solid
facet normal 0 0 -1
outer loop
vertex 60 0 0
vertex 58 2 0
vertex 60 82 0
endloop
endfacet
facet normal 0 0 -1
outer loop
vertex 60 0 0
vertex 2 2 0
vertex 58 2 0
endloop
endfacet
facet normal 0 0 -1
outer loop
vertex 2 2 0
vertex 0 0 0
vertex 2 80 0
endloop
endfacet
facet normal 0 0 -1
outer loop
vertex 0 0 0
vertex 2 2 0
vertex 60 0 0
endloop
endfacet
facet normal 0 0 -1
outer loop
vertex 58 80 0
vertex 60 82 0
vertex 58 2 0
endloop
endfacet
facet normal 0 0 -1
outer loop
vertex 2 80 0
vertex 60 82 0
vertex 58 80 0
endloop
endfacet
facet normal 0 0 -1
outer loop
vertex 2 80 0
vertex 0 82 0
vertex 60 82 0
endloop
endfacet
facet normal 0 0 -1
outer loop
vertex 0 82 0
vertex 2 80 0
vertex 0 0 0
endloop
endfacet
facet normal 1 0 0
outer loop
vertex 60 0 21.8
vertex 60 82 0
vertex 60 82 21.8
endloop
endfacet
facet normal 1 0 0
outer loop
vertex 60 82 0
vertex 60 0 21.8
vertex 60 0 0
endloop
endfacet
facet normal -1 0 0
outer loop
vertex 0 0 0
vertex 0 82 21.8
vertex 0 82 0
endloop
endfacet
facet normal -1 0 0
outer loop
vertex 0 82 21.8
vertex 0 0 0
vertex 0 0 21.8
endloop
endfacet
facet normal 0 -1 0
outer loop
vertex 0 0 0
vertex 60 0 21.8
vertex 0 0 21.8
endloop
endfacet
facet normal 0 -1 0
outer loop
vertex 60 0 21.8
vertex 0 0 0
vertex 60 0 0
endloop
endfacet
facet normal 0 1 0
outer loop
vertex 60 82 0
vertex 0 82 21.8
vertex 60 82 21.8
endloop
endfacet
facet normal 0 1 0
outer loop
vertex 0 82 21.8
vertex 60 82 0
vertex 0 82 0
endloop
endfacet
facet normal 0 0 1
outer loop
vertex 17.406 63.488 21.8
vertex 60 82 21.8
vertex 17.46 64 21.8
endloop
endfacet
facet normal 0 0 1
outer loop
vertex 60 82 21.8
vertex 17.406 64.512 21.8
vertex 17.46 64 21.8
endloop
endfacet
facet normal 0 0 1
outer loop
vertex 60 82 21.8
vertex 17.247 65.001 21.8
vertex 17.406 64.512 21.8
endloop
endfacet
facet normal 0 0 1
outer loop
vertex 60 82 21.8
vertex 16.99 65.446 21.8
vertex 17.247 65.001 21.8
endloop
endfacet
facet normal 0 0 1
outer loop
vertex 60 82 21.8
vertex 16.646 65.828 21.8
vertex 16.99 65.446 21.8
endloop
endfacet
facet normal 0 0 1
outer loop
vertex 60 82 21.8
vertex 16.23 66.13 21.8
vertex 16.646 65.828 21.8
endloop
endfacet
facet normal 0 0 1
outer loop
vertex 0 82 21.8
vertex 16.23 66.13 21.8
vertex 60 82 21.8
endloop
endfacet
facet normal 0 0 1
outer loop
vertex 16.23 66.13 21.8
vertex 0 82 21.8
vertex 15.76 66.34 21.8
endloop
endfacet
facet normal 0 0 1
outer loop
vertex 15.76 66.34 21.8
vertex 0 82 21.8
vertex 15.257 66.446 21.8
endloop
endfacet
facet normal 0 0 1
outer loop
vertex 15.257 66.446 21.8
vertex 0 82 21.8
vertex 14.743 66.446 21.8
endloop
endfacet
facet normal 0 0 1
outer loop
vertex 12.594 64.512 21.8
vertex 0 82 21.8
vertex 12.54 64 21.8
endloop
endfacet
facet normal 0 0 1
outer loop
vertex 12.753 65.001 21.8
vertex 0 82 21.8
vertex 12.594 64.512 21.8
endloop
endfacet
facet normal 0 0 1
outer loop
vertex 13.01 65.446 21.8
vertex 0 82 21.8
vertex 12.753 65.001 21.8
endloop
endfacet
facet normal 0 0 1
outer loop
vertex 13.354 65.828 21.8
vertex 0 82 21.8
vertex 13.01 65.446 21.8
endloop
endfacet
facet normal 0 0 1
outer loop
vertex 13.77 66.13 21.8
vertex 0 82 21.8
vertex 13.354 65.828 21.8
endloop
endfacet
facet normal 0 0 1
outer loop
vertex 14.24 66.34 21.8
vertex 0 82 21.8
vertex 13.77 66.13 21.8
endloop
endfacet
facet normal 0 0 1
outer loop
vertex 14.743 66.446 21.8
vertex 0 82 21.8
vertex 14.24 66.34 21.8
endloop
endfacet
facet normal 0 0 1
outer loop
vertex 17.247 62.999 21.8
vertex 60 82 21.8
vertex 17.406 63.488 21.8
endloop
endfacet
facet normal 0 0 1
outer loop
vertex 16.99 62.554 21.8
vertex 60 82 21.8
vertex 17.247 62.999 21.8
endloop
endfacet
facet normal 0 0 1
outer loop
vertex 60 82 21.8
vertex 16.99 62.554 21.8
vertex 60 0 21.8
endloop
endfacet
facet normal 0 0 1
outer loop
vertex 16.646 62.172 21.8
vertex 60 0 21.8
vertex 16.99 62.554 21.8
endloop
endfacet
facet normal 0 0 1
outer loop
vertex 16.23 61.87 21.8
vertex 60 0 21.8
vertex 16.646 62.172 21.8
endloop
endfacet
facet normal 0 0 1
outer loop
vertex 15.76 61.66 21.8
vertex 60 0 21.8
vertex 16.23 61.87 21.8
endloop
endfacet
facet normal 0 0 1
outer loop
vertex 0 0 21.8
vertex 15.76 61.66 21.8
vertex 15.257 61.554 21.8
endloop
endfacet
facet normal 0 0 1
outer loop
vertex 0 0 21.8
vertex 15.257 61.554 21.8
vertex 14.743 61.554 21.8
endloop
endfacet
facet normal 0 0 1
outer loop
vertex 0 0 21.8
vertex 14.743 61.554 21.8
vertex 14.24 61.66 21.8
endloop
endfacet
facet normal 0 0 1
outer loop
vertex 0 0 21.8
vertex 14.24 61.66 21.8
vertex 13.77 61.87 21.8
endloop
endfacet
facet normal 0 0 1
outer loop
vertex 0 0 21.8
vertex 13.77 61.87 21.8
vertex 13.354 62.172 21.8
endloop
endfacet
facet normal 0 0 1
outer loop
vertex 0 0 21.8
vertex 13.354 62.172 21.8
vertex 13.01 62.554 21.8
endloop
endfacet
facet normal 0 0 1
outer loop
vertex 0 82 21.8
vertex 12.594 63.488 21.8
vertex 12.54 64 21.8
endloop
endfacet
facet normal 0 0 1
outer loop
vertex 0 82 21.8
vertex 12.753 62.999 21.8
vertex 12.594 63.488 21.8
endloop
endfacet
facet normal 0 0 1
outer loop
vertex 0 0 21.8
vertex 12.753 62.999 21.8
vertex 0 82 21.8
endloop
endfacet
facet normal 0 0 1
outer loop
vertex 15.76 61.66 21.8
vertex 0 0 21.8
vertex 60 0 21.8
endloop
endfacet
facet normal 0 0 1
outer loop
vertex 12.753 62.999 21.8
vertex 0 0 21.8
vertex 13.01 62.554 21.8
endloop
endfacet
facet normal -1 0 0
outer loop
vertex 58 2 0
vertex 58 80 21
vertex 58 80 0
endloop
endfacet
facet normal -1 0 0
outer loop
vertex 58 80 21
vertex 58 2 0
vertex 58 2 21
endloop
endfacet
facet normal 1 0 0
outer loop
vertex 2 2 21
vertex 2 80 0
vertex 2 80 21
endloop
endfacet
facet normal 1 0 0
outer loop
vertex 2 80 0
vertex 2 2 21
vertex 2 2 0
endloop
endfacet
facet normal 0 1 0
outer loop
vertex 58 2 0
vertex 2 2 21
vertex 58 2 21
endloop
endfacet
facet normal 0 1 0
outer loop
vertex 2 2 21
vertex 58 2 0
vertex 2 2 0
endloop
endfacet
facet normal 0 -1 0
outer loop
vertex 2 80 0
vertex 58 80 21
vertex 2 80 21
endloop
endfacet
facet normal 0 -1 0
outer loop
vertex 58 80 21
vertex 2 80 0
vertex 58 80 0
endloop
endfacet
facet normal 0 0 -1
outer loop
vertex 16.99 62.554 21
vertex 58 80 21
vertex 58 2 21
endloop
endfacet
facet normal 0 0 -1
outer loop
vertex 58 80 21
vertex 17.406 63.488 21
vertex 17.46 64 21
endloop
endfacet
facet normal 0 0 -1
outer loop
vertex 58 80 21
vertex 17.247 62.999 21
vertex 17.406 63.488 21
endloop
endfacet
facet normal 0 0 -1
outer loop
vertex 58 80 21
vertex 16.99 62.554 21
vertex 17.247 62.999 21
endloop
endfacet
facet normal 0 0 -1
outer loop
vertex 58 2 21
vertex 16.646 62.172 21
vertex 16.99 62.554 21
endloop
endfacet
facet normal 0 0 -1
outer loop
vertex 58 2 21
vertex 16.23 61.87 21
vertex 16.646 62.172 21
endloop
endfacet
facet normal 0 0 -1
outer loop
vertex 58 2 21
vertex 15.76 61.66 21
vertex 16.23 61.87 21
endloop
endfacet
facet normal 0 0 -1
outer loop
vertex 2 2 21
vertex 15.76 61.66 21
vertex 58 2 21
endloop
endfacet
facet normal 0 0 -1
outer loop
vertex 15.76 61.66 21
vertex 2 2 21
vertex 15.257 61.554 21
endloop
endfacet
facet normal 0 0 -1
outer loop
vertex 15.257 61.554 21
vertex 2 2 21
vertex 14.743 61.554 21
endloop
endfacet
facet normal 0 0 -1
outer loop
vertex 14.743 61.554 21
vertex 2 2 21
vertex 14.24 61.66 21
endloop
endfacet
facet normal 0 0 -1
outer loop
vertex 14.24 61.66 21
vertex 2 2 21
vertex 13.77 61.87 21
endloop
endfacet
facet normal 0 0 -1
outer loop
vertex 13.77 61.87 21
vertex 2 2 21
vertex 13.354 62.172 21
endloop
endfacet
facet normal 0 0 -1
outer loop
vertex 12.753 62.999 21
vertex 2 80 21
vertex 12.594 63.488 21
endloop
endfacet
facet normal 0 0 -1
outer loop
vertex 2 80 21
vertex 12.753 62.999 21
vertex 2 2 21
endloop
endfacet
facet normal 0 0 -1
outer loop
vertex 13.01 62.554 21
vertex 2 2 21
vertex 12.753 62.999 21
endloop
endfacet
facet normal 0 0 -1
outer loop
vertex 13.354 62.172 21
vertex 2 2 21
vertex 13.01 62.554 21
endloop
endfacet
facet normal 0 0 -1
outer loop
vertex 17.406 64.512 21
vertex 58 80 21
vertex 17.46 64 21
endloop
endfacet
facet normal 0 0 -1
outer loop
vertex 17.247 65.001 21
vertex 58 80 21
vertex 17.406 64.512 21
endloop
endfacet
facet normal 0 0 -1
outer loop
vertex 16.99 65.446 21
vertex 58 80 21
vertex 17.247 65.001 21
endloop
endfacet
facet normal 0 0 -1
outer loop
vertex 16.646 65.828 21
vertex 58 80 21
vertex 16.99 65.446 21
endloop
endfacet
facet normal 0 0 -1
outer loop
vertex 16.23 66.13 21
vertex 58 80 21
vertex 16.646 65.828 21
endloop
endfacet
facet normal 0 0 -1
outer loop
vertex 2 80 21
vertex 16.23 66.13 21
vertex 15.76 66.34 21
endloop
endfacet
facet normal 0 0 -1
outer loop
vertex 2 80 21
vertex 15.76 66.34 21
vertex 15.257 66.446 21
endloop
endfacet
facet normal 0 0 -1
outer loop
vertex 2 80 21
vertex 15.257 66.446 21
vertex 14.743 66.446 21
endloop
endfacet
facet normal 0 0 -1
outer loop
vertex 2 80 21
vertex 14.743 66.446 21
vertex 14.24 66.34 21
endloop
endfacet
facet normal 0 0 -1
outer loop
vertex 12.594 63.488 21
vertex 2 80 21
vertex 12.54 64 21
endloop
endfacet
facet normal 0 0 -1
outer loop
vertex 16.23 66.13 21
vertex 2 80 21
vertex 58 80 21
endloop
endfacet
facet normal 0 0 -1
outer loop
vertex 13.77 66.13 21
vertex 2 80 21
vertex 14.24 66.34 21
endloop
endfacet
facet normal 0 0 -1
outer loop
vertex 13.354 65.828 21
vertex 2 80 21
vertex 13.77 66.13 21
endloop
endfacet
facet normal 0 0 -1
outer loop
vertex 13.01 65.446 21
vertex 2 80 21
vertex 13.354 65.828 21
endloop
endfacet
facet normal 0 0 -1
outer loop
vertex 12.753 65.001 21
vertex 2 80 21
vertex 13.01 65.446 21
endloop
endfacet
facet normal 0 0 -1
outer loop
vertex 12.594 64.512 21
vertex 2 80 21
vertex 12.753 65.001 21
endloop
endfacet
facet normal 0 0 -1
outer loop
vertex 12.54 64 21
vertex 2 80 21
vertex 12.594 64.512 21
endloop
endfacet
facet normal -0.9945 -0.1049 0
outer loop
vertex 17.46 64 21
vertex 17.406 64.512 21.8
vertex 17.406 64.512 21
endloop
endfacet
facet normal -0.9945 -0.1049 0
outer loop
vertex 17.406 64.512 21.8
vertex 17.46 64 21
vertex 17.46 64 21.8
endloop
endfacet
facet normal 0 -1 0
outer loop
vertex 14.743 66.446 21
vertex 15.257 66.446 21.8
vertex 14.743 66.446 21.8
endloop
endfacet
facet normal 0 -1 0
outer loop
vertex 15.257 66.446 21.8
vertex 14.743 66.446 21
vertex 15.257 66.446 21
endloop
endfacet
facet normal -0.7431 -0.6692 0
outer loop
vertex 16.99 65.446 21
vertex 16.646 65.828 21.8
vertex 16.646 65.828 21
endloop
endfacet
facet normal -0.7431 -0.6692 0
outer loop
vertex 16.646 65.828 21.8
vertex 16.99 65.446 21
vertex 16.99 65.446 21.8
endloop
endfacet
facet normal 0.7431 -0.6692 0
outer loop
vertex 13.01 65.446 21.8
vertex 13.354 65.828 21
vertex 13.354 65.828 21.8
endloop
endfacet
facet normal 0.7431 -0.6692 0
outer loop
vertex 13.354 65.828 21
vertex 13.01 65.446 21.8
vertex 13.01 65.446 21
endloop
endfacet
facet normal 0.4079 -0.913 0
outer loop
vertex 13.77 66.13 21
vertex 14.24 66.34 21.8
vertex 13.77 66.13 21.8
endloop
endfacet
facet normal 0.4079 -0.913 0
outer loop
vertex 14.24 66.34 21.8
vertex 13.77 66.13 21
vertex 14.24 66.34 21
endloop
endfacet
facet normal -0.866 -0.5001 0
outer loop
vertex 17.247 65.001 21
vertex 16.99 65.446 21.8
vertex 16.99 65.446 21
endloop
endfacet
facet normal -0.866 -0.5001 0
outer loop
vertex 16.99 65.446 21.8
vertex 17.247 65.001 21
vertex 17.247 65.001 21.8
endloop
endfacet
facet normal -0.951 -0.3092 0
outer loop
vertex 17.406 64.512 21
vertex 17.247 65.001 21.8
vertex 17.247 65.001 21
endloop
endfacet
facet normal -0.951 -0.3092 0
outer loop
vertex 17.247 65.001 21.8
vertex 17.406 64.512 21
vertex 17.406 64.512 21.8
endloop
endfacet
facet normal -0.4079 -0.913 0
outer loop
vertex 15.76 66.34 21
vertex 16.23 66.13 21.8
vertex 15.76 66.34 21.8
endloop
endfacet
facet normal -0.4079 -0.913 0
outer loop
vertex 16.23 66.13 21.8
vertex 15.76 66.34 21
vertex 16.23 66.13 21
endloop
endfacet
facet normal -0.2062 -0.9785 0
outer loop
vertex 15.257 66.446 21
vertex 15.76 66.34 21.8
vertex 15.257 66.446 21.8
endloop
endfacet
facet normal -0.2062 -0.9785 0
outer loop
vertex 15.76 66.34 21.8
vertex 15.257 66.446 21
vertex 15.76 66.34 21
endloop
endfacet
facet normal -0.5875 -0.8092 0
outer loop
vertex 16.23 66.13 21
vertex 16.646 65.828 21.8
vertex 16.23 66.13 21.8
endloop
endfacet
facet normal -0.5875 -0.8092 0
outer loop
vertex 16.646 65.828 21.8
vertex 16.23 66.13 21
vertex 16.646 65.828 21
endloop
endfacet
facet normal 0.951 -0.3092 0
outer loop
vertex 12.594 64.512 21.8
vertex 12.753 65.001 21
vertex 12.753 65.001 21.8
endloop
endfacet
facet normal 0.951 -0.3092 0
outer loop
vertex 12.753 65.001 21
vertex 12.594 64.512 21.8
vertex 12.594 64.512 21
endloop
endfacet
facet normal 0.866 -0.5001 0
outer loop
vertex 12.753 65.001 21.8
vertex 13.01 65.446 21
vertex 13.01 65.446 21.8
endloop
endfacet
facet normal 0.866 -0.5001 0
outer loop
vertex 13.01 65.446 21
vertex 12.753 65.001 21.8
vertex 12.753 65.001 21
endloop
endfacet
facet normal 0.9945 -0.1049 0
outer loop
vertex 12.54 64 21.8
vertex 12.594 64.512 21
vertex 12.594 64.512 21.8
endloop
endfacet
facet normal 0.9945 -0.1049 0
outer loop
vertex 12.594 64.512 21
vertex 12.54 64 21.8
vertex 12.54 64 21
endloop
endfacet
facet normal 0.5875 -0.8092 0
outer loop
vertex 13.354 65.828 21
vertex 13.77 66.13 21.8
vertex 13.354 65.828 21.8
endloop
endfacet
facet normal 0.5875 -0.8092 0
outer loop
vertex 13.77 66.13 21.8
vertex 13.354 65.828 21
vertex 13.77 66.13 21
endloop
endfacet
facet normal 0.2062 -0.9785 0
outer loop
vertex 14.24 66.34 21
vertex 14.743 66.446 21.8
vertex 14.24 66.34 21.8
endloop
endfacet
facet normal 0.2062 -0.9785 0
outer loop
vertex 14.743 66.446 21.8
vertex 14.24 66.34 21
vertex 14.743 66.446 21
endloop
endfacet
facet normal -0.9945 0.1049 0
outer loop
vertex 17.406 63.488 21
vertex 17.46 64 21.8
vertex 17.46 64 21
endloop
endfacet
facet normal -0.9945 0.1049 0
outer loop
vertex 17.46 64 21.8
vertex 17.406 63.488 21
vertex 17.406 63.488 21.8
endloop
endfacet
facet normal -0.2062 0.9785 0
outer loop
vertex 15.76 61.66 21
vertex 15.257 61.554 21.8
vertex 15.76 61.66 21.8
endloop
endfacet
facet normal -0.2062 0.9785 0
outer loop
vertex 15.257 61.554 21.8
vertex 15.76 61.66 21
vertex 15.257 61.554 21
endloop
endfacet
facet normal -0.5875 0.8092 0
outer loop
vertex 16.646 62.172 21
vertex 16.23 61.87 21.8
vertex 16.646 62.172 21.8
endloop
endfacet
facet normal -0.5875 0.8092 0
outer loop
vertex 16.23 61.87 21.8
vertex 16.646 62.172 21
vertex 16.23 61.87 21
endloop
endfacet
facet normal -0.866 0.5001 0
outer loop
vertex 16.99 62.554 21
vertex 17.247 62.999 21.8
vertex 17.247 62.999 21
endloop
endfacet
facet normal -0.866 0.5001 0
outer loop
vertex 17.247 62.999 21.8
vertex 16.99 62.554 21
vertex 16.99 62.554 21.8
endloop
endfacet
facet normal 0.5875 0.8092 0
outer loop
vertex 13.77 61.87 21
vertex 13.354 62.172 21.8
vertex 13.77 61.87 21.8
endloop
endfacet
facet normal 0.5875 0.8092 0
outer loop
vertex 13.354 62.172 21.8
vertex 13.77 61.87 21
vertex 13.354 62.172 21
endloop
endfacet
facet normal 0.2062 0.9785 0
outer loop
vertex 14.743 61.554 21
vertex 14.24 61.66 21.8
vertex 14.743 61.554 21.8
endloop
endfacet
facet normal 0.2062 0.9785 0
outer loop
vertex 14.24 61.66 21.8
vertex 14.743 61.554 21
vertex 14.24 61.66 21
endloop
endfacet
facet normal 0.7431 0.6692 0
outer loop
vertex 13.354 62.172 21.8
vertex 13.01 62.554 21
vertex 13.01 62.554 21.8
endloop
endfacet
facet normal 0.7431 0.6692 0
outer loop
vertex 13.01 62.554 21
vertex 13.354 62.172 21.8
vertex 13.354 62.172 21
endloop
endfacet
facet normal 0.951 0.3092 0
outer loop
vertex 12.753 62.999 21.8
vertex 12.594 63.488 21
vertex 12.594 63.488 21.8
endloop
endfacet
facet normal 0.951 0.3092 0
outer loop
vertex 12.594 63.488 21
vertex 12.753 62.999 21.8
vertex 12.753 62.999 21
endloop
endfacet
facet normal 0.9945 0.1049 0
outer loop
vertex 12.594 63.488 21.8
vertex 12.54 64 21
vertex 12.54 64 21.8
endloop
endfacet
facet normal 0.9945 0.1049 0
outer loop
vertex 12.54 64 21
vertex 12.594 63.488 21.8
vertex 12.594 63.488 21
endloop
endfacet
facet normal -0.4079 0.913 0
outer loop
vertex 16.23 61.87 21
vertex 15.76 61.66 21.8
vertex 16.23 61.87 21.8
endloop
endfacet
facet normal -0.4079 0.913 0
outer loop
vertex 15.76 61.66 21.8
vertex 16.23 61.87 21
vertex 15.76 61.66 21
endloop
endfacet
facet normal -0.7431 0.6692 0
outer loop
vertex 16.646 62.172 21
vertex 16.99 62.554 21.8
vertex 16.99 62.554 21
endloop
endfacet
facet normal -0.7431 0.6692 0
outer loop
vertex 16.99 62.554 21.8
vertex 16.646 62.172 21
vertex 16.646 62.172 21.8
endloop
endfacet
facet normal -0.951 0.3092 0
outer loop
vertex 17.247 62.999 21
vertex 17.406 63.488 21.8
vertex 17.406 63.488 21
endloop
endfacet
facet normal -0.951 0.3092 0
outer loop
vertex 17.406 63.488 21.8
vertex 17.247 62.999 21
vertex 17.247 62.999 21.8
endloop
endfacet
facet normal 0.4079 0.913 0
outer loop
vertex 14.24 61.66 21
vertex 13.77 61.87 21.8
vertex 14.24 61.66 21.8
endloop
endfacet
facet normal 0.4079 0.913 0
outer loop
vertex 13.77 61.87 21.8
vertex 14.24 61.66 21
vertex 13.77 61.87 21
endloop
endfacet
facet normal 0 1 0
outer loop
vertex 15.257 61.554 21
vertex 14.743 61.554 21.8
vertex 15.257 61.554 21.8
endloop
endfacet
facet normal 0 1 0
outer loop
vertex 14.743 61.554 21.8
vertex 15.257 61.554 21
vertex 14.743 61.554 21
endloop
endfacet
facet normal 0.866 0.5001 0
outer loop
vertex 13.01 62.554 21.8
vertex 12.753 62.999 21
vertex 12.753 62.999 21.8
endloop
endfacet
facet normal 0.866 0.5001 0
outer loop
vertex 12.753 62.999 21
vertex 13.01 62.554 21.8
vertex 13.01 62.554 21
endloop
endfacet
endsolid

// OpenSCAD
//render() difference() {
//    linear_extrude(height=25) square([55,76], center=true);
//    translate([0,0, 1.5]) linear_extrude(height=50) square([52,73], center=true);
//}

//render() union() {
//rotate([0,90,0]) linear_extrude(height=1) square([23,78], center=true);
//color("magenta") translate([-23,0,0]) rotate([0,90,0]) linear_extrude(height=1) square([23,78], center=true);
//color("red") translate([-11,0,11.5]) rotate([0,0,0]) linear_extrude(height=1) square([24,78], center=true);
//
//color("green") translate([-11,38,0.5]) rotate([-90,0,0]) linear_extrude(height=1) square([24,24], center=true);
//
//color("green") translate([-11,-39,0.5]) rotate([-90,0,0]) linear_extrude(height=1) square([24,24], center=true);
//
//
//color("pink") translate([-11,37,-11.5]) rotate([0,0,0]) linear_extrude(height=1) square([24,3], center=true);
//
//color("pink") translate([-11,-37.5,-11.5]) rotate([0,0,0]) linear_extrude(height=1) square([24,3], center=true);

//}

//render() difference() {
//color("red") linear_extrude(height=25) square([24,78], center=true);
//translate([0,0,1]) color("green") linear_extrude(height=23) square([22,76], center=true);
//}

pcb_w = 27;
pcb_h = 76;
battery_w = 21;
battery_h = 76;
thick = 1;
thick2 = 2;
height = 2;
pad = 4;

$fs= 0.5;

render() difference(){
color("green") translate([0,0]) linear_extrude(height=21.8) square([pcb_w+battery_w+3*pad,battery_h+pad+2*thick], center=false);

color("pink") translate([2,2]) linear_extrude(height=21) square([pcb_w+battery_w+3*pad-pad,battery_h+pad+2*thick-pad], center=false);
color("red") translate([15,64,10]) cylinder(25,2.46,2.46, false);
}
